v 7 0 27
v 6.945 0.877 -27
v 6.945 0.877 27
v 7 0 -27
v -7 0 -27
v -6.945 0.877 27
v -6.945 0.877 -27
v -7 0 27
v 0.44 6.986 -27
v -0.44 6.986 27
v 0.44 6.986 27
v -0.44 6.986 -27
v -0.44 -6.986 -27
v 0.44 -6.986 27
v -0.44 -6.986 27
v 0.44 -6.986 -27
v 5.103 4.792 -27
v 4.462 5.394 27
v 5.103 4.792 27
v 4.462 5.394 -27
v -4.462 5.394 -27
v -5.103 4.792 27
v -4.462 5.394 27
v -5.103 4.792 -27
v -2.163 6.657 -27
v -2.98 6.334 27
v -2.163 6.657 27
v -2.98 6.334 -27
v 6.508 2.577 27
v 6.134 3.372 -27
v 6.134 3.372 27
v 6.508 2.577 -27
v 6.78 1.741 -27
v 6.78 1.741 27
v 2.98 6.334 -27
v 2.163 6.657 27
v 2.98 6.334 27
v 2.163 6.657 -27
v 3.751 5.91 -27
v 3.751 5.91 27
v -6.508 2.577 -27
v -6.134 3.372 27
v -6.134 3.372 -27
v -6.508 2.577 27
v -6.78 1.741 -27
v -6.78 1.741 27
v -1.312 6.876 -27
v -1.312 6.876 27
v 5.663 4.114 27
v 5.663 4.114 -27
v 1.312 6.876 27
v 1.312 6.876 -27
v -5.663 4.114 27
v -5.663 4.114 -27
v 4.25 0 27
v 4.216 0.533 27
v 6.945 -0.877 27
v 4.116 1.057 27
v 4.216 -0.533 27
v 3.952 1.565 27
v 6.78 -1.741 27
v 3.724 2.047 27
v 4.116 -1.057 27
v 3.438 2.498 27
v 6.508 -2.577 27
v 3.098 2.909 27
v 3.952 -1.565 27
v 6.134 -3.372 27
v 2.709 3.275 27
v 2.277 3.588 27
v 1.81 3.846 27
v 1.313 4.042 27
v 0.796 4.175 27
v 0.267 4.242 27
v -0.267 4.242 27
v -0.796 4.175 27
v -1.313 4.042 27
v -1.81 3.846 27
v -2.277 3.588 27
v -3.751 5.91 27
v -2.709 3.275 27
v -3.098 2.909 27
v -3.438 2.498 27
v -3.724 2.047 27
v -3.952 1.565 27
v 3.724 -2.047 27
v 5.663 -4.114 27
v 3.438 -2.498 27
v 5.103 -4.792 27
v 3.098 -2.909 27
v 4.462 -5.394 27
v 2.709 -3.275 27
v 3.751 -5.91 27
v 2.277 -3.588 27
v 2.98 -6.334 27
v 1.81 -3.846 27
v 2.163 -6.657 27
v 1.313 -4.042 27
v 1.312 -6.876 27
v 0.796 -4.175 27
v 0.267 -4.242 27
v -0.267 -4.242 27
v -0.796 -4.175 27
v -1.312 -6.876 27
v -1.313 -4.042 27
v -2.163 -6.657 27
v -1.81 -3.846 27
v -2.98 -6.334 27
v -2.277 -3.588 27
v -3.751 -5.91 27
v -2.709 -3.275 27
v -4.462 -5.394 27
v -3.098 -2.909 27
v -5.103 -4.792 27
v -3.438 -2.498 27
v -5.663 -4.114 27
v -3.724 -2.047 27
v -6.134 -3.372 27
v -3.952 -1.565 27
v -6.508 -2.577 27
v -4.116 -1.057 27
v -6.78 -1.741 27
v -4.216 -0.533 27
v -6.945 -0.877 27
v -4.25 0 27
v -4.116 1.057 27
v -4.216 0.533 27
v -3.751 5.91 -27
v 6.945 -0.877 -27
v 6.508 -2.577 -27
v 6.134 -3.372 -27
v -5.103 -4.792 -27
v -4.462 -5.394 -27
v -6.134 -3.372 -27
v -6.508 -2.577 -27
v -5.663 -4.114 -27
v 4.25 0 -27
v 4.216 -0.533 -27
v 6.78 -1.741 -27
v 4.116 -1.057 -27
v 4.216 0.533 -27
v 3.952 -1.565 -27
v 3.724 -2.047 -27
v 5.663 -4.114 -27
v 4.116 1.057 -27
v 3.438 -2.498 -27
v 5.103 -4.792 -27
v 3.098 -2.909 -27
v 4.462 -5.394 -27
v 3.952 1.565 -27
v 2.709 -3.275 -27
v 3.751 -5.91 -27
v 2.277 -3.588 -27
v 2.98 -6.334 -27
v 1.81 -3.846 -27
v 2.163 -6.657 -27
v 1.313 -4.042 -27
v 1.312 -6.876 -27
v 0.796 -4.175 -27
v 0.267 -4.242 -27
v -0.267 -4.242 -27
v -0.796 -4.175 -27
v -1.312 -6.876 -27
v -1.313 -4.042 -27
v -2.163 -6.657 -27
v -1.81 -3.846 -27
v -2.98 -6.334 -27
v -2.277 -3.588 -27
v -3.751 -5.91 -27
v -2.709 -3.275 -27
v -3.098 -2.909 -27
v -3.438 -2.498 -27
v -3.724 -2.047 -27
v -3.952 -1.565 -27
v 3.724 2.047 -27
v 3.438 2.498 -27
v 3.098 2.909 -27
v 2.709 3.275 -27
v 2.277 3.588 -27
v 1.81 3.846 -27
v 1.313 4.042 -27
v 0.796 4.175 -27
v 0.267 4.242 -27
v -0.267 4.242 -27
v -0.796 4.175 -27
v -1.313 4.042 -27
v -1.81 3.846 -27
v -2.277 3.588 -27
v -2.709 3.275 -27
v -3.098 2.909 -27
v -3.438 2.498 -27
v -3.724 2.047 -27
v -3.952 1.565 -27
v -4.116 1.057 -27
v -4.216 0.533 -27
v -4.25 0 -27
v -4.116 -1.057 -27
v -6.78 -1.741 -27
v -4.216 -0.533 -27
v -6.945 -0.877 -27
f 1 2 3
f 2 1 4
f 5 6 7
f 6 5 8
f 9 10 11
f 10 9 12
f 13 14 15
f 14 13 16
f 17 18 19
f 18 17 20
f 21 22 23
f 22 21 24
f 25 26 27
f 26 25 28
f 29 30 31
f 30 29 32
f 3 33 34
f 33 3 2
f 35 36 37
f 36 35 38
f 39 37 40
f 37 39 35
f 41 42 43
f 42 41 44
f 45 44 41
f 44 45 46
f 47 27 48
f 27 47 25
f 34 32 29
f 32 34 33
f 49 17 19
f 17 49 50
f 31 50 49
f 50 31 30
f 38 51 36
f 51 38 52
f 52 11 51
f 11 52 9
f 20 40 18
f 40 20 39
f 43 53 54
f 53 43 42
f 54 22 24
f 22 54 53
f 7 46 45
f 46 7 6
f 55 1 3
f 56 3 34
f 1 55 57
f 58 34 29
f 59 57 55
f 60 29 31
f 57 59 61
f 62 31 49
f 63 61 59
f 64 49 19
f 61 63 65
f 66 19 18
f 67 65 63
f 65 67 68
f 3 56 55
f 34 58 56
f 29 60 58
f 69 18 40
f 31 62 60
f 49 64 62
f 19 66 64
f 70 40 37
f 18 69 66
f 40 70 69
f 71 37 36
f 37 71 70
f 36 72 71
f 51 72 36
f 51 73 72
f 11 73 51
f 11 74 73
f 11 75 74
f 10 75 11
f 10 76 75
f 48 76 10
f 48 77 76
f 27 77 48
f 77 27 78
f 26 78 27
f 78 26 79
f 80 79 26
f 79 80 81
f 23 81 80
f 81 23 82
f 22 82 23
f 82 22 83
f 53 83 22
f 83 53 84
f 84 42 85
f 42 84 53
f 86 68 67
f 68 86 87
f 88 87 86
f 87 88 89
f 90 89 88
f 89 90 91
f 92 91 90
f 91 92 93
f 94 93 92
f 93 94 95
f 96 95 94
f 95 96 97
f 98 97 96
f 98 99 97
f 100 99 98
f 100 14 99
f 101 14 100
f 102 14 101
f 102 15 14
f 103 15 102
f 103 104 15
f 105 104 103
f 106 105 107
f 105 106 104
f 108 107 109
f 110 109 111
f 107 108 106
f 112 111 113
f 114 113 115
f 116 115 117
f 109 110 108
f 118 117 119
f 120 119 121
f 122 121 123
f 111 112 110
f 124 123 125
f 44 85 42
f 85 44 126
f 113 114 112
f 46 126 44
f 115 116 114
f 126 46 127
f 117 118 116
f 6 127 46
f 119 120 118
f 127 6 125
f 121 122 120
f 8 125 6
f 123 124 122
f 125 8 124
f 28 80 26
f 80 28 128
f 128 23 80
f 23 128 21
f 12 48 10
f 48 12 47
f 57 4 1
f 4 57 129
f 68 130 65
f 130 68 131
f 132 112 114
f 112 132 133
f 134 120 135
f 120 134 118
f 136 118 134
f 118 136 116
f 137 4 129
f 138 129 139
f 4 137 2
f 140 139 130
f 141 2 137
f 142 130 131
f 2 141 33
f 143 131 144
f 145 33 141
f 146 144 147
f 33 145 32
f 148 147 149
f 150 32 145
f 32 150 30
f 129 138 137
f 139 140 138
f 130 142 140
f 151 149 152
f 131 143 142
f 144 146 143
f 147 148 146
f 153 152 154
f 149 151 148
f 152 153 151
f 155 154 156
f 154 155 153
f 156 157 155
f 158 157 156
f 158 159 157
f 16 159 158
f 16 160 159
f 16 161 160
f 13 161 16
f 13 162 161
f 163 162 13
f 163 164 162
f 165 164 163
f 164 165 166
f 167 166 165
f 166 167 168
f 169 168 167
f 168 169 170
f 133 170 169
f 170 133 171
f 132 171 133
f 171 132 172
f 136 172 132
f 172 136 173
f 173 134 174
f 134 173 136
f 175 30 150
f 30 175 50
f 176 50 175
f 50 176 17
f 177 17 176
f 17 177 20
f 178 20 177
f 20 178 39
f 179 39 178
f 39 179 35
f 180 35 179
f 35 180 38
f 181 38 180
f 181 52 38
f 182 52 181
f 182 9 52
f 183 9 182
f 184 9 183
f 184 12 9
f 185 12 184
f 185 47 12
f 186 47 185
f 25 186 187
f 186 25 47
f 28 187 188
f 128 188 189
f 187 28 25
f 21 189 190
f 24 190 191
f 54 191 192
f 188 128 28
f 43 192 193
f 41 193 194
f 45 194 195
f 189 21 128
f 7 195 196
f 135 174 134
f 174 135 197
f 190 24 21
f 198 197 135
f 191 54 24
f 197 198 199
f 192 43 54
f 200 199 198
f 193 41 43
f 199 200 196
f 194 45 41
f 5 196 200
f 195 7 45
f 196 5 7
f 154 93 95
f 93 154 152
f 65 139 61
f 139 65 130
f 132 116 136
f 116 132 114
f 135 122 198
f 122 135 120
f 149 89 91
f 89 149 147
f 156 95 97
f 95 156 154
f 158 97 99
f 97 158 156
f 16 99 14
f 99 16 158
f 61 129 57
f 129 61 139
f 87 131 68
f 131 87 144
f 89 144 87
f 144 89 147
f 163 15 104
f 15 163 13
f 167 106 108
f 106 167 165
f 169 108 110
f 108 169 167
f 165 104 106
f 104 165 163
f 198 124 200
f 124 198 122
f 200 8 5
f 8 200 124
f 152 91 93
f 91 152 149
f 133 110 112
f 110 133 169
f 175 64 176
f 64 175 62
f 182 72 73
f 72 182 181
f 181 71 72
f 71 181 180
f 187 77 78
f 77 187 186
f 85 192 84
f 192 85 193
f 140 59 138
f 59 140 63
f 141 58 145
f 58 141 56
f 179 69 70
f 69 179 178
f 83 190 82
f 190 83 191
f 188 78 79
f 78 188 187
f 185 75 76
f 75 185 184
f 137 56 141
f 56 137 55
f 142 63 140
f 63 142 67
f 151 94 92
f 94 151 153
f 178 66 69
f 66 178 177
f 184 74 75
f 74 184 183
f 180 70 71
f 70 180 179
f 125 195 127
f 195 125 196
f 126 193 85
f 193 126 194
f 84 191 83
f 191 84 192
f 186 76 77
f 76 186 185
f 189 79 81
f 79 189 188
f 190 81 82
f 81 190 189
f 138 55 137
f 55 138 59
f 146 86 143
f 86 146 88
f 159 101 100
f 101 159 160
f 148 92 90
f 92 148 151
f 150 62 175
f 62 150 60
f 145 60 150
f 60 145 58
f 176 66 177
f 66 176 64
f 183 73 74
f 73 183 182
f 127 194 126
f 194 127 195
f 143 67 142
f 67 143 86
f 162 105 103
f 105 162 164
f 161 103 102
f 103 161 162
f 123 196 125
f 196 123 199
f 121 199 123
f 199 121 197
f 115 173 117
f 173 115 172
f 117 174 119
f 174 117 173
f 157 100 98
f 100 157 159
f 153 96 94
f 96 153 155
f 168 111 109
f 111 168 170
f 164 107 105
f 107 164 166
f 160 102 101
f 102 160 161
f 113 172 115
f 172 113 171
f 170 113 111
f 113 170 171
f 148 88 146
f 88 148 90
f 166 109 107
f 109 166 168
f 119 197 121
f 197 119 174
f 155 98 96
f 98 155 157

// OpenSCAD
$fn = 50;


difference() {
	union() {
		translate(v = [0, 0, -27.0000000000]) {
			cylinder(h = 54, r = 7.0000000000);
		}
	}
	union() {
		translate(v = [0, 0, -100.0000000000]) {
			cylinder(h = 200, r = 4.2500000000);
		}
	}
}
